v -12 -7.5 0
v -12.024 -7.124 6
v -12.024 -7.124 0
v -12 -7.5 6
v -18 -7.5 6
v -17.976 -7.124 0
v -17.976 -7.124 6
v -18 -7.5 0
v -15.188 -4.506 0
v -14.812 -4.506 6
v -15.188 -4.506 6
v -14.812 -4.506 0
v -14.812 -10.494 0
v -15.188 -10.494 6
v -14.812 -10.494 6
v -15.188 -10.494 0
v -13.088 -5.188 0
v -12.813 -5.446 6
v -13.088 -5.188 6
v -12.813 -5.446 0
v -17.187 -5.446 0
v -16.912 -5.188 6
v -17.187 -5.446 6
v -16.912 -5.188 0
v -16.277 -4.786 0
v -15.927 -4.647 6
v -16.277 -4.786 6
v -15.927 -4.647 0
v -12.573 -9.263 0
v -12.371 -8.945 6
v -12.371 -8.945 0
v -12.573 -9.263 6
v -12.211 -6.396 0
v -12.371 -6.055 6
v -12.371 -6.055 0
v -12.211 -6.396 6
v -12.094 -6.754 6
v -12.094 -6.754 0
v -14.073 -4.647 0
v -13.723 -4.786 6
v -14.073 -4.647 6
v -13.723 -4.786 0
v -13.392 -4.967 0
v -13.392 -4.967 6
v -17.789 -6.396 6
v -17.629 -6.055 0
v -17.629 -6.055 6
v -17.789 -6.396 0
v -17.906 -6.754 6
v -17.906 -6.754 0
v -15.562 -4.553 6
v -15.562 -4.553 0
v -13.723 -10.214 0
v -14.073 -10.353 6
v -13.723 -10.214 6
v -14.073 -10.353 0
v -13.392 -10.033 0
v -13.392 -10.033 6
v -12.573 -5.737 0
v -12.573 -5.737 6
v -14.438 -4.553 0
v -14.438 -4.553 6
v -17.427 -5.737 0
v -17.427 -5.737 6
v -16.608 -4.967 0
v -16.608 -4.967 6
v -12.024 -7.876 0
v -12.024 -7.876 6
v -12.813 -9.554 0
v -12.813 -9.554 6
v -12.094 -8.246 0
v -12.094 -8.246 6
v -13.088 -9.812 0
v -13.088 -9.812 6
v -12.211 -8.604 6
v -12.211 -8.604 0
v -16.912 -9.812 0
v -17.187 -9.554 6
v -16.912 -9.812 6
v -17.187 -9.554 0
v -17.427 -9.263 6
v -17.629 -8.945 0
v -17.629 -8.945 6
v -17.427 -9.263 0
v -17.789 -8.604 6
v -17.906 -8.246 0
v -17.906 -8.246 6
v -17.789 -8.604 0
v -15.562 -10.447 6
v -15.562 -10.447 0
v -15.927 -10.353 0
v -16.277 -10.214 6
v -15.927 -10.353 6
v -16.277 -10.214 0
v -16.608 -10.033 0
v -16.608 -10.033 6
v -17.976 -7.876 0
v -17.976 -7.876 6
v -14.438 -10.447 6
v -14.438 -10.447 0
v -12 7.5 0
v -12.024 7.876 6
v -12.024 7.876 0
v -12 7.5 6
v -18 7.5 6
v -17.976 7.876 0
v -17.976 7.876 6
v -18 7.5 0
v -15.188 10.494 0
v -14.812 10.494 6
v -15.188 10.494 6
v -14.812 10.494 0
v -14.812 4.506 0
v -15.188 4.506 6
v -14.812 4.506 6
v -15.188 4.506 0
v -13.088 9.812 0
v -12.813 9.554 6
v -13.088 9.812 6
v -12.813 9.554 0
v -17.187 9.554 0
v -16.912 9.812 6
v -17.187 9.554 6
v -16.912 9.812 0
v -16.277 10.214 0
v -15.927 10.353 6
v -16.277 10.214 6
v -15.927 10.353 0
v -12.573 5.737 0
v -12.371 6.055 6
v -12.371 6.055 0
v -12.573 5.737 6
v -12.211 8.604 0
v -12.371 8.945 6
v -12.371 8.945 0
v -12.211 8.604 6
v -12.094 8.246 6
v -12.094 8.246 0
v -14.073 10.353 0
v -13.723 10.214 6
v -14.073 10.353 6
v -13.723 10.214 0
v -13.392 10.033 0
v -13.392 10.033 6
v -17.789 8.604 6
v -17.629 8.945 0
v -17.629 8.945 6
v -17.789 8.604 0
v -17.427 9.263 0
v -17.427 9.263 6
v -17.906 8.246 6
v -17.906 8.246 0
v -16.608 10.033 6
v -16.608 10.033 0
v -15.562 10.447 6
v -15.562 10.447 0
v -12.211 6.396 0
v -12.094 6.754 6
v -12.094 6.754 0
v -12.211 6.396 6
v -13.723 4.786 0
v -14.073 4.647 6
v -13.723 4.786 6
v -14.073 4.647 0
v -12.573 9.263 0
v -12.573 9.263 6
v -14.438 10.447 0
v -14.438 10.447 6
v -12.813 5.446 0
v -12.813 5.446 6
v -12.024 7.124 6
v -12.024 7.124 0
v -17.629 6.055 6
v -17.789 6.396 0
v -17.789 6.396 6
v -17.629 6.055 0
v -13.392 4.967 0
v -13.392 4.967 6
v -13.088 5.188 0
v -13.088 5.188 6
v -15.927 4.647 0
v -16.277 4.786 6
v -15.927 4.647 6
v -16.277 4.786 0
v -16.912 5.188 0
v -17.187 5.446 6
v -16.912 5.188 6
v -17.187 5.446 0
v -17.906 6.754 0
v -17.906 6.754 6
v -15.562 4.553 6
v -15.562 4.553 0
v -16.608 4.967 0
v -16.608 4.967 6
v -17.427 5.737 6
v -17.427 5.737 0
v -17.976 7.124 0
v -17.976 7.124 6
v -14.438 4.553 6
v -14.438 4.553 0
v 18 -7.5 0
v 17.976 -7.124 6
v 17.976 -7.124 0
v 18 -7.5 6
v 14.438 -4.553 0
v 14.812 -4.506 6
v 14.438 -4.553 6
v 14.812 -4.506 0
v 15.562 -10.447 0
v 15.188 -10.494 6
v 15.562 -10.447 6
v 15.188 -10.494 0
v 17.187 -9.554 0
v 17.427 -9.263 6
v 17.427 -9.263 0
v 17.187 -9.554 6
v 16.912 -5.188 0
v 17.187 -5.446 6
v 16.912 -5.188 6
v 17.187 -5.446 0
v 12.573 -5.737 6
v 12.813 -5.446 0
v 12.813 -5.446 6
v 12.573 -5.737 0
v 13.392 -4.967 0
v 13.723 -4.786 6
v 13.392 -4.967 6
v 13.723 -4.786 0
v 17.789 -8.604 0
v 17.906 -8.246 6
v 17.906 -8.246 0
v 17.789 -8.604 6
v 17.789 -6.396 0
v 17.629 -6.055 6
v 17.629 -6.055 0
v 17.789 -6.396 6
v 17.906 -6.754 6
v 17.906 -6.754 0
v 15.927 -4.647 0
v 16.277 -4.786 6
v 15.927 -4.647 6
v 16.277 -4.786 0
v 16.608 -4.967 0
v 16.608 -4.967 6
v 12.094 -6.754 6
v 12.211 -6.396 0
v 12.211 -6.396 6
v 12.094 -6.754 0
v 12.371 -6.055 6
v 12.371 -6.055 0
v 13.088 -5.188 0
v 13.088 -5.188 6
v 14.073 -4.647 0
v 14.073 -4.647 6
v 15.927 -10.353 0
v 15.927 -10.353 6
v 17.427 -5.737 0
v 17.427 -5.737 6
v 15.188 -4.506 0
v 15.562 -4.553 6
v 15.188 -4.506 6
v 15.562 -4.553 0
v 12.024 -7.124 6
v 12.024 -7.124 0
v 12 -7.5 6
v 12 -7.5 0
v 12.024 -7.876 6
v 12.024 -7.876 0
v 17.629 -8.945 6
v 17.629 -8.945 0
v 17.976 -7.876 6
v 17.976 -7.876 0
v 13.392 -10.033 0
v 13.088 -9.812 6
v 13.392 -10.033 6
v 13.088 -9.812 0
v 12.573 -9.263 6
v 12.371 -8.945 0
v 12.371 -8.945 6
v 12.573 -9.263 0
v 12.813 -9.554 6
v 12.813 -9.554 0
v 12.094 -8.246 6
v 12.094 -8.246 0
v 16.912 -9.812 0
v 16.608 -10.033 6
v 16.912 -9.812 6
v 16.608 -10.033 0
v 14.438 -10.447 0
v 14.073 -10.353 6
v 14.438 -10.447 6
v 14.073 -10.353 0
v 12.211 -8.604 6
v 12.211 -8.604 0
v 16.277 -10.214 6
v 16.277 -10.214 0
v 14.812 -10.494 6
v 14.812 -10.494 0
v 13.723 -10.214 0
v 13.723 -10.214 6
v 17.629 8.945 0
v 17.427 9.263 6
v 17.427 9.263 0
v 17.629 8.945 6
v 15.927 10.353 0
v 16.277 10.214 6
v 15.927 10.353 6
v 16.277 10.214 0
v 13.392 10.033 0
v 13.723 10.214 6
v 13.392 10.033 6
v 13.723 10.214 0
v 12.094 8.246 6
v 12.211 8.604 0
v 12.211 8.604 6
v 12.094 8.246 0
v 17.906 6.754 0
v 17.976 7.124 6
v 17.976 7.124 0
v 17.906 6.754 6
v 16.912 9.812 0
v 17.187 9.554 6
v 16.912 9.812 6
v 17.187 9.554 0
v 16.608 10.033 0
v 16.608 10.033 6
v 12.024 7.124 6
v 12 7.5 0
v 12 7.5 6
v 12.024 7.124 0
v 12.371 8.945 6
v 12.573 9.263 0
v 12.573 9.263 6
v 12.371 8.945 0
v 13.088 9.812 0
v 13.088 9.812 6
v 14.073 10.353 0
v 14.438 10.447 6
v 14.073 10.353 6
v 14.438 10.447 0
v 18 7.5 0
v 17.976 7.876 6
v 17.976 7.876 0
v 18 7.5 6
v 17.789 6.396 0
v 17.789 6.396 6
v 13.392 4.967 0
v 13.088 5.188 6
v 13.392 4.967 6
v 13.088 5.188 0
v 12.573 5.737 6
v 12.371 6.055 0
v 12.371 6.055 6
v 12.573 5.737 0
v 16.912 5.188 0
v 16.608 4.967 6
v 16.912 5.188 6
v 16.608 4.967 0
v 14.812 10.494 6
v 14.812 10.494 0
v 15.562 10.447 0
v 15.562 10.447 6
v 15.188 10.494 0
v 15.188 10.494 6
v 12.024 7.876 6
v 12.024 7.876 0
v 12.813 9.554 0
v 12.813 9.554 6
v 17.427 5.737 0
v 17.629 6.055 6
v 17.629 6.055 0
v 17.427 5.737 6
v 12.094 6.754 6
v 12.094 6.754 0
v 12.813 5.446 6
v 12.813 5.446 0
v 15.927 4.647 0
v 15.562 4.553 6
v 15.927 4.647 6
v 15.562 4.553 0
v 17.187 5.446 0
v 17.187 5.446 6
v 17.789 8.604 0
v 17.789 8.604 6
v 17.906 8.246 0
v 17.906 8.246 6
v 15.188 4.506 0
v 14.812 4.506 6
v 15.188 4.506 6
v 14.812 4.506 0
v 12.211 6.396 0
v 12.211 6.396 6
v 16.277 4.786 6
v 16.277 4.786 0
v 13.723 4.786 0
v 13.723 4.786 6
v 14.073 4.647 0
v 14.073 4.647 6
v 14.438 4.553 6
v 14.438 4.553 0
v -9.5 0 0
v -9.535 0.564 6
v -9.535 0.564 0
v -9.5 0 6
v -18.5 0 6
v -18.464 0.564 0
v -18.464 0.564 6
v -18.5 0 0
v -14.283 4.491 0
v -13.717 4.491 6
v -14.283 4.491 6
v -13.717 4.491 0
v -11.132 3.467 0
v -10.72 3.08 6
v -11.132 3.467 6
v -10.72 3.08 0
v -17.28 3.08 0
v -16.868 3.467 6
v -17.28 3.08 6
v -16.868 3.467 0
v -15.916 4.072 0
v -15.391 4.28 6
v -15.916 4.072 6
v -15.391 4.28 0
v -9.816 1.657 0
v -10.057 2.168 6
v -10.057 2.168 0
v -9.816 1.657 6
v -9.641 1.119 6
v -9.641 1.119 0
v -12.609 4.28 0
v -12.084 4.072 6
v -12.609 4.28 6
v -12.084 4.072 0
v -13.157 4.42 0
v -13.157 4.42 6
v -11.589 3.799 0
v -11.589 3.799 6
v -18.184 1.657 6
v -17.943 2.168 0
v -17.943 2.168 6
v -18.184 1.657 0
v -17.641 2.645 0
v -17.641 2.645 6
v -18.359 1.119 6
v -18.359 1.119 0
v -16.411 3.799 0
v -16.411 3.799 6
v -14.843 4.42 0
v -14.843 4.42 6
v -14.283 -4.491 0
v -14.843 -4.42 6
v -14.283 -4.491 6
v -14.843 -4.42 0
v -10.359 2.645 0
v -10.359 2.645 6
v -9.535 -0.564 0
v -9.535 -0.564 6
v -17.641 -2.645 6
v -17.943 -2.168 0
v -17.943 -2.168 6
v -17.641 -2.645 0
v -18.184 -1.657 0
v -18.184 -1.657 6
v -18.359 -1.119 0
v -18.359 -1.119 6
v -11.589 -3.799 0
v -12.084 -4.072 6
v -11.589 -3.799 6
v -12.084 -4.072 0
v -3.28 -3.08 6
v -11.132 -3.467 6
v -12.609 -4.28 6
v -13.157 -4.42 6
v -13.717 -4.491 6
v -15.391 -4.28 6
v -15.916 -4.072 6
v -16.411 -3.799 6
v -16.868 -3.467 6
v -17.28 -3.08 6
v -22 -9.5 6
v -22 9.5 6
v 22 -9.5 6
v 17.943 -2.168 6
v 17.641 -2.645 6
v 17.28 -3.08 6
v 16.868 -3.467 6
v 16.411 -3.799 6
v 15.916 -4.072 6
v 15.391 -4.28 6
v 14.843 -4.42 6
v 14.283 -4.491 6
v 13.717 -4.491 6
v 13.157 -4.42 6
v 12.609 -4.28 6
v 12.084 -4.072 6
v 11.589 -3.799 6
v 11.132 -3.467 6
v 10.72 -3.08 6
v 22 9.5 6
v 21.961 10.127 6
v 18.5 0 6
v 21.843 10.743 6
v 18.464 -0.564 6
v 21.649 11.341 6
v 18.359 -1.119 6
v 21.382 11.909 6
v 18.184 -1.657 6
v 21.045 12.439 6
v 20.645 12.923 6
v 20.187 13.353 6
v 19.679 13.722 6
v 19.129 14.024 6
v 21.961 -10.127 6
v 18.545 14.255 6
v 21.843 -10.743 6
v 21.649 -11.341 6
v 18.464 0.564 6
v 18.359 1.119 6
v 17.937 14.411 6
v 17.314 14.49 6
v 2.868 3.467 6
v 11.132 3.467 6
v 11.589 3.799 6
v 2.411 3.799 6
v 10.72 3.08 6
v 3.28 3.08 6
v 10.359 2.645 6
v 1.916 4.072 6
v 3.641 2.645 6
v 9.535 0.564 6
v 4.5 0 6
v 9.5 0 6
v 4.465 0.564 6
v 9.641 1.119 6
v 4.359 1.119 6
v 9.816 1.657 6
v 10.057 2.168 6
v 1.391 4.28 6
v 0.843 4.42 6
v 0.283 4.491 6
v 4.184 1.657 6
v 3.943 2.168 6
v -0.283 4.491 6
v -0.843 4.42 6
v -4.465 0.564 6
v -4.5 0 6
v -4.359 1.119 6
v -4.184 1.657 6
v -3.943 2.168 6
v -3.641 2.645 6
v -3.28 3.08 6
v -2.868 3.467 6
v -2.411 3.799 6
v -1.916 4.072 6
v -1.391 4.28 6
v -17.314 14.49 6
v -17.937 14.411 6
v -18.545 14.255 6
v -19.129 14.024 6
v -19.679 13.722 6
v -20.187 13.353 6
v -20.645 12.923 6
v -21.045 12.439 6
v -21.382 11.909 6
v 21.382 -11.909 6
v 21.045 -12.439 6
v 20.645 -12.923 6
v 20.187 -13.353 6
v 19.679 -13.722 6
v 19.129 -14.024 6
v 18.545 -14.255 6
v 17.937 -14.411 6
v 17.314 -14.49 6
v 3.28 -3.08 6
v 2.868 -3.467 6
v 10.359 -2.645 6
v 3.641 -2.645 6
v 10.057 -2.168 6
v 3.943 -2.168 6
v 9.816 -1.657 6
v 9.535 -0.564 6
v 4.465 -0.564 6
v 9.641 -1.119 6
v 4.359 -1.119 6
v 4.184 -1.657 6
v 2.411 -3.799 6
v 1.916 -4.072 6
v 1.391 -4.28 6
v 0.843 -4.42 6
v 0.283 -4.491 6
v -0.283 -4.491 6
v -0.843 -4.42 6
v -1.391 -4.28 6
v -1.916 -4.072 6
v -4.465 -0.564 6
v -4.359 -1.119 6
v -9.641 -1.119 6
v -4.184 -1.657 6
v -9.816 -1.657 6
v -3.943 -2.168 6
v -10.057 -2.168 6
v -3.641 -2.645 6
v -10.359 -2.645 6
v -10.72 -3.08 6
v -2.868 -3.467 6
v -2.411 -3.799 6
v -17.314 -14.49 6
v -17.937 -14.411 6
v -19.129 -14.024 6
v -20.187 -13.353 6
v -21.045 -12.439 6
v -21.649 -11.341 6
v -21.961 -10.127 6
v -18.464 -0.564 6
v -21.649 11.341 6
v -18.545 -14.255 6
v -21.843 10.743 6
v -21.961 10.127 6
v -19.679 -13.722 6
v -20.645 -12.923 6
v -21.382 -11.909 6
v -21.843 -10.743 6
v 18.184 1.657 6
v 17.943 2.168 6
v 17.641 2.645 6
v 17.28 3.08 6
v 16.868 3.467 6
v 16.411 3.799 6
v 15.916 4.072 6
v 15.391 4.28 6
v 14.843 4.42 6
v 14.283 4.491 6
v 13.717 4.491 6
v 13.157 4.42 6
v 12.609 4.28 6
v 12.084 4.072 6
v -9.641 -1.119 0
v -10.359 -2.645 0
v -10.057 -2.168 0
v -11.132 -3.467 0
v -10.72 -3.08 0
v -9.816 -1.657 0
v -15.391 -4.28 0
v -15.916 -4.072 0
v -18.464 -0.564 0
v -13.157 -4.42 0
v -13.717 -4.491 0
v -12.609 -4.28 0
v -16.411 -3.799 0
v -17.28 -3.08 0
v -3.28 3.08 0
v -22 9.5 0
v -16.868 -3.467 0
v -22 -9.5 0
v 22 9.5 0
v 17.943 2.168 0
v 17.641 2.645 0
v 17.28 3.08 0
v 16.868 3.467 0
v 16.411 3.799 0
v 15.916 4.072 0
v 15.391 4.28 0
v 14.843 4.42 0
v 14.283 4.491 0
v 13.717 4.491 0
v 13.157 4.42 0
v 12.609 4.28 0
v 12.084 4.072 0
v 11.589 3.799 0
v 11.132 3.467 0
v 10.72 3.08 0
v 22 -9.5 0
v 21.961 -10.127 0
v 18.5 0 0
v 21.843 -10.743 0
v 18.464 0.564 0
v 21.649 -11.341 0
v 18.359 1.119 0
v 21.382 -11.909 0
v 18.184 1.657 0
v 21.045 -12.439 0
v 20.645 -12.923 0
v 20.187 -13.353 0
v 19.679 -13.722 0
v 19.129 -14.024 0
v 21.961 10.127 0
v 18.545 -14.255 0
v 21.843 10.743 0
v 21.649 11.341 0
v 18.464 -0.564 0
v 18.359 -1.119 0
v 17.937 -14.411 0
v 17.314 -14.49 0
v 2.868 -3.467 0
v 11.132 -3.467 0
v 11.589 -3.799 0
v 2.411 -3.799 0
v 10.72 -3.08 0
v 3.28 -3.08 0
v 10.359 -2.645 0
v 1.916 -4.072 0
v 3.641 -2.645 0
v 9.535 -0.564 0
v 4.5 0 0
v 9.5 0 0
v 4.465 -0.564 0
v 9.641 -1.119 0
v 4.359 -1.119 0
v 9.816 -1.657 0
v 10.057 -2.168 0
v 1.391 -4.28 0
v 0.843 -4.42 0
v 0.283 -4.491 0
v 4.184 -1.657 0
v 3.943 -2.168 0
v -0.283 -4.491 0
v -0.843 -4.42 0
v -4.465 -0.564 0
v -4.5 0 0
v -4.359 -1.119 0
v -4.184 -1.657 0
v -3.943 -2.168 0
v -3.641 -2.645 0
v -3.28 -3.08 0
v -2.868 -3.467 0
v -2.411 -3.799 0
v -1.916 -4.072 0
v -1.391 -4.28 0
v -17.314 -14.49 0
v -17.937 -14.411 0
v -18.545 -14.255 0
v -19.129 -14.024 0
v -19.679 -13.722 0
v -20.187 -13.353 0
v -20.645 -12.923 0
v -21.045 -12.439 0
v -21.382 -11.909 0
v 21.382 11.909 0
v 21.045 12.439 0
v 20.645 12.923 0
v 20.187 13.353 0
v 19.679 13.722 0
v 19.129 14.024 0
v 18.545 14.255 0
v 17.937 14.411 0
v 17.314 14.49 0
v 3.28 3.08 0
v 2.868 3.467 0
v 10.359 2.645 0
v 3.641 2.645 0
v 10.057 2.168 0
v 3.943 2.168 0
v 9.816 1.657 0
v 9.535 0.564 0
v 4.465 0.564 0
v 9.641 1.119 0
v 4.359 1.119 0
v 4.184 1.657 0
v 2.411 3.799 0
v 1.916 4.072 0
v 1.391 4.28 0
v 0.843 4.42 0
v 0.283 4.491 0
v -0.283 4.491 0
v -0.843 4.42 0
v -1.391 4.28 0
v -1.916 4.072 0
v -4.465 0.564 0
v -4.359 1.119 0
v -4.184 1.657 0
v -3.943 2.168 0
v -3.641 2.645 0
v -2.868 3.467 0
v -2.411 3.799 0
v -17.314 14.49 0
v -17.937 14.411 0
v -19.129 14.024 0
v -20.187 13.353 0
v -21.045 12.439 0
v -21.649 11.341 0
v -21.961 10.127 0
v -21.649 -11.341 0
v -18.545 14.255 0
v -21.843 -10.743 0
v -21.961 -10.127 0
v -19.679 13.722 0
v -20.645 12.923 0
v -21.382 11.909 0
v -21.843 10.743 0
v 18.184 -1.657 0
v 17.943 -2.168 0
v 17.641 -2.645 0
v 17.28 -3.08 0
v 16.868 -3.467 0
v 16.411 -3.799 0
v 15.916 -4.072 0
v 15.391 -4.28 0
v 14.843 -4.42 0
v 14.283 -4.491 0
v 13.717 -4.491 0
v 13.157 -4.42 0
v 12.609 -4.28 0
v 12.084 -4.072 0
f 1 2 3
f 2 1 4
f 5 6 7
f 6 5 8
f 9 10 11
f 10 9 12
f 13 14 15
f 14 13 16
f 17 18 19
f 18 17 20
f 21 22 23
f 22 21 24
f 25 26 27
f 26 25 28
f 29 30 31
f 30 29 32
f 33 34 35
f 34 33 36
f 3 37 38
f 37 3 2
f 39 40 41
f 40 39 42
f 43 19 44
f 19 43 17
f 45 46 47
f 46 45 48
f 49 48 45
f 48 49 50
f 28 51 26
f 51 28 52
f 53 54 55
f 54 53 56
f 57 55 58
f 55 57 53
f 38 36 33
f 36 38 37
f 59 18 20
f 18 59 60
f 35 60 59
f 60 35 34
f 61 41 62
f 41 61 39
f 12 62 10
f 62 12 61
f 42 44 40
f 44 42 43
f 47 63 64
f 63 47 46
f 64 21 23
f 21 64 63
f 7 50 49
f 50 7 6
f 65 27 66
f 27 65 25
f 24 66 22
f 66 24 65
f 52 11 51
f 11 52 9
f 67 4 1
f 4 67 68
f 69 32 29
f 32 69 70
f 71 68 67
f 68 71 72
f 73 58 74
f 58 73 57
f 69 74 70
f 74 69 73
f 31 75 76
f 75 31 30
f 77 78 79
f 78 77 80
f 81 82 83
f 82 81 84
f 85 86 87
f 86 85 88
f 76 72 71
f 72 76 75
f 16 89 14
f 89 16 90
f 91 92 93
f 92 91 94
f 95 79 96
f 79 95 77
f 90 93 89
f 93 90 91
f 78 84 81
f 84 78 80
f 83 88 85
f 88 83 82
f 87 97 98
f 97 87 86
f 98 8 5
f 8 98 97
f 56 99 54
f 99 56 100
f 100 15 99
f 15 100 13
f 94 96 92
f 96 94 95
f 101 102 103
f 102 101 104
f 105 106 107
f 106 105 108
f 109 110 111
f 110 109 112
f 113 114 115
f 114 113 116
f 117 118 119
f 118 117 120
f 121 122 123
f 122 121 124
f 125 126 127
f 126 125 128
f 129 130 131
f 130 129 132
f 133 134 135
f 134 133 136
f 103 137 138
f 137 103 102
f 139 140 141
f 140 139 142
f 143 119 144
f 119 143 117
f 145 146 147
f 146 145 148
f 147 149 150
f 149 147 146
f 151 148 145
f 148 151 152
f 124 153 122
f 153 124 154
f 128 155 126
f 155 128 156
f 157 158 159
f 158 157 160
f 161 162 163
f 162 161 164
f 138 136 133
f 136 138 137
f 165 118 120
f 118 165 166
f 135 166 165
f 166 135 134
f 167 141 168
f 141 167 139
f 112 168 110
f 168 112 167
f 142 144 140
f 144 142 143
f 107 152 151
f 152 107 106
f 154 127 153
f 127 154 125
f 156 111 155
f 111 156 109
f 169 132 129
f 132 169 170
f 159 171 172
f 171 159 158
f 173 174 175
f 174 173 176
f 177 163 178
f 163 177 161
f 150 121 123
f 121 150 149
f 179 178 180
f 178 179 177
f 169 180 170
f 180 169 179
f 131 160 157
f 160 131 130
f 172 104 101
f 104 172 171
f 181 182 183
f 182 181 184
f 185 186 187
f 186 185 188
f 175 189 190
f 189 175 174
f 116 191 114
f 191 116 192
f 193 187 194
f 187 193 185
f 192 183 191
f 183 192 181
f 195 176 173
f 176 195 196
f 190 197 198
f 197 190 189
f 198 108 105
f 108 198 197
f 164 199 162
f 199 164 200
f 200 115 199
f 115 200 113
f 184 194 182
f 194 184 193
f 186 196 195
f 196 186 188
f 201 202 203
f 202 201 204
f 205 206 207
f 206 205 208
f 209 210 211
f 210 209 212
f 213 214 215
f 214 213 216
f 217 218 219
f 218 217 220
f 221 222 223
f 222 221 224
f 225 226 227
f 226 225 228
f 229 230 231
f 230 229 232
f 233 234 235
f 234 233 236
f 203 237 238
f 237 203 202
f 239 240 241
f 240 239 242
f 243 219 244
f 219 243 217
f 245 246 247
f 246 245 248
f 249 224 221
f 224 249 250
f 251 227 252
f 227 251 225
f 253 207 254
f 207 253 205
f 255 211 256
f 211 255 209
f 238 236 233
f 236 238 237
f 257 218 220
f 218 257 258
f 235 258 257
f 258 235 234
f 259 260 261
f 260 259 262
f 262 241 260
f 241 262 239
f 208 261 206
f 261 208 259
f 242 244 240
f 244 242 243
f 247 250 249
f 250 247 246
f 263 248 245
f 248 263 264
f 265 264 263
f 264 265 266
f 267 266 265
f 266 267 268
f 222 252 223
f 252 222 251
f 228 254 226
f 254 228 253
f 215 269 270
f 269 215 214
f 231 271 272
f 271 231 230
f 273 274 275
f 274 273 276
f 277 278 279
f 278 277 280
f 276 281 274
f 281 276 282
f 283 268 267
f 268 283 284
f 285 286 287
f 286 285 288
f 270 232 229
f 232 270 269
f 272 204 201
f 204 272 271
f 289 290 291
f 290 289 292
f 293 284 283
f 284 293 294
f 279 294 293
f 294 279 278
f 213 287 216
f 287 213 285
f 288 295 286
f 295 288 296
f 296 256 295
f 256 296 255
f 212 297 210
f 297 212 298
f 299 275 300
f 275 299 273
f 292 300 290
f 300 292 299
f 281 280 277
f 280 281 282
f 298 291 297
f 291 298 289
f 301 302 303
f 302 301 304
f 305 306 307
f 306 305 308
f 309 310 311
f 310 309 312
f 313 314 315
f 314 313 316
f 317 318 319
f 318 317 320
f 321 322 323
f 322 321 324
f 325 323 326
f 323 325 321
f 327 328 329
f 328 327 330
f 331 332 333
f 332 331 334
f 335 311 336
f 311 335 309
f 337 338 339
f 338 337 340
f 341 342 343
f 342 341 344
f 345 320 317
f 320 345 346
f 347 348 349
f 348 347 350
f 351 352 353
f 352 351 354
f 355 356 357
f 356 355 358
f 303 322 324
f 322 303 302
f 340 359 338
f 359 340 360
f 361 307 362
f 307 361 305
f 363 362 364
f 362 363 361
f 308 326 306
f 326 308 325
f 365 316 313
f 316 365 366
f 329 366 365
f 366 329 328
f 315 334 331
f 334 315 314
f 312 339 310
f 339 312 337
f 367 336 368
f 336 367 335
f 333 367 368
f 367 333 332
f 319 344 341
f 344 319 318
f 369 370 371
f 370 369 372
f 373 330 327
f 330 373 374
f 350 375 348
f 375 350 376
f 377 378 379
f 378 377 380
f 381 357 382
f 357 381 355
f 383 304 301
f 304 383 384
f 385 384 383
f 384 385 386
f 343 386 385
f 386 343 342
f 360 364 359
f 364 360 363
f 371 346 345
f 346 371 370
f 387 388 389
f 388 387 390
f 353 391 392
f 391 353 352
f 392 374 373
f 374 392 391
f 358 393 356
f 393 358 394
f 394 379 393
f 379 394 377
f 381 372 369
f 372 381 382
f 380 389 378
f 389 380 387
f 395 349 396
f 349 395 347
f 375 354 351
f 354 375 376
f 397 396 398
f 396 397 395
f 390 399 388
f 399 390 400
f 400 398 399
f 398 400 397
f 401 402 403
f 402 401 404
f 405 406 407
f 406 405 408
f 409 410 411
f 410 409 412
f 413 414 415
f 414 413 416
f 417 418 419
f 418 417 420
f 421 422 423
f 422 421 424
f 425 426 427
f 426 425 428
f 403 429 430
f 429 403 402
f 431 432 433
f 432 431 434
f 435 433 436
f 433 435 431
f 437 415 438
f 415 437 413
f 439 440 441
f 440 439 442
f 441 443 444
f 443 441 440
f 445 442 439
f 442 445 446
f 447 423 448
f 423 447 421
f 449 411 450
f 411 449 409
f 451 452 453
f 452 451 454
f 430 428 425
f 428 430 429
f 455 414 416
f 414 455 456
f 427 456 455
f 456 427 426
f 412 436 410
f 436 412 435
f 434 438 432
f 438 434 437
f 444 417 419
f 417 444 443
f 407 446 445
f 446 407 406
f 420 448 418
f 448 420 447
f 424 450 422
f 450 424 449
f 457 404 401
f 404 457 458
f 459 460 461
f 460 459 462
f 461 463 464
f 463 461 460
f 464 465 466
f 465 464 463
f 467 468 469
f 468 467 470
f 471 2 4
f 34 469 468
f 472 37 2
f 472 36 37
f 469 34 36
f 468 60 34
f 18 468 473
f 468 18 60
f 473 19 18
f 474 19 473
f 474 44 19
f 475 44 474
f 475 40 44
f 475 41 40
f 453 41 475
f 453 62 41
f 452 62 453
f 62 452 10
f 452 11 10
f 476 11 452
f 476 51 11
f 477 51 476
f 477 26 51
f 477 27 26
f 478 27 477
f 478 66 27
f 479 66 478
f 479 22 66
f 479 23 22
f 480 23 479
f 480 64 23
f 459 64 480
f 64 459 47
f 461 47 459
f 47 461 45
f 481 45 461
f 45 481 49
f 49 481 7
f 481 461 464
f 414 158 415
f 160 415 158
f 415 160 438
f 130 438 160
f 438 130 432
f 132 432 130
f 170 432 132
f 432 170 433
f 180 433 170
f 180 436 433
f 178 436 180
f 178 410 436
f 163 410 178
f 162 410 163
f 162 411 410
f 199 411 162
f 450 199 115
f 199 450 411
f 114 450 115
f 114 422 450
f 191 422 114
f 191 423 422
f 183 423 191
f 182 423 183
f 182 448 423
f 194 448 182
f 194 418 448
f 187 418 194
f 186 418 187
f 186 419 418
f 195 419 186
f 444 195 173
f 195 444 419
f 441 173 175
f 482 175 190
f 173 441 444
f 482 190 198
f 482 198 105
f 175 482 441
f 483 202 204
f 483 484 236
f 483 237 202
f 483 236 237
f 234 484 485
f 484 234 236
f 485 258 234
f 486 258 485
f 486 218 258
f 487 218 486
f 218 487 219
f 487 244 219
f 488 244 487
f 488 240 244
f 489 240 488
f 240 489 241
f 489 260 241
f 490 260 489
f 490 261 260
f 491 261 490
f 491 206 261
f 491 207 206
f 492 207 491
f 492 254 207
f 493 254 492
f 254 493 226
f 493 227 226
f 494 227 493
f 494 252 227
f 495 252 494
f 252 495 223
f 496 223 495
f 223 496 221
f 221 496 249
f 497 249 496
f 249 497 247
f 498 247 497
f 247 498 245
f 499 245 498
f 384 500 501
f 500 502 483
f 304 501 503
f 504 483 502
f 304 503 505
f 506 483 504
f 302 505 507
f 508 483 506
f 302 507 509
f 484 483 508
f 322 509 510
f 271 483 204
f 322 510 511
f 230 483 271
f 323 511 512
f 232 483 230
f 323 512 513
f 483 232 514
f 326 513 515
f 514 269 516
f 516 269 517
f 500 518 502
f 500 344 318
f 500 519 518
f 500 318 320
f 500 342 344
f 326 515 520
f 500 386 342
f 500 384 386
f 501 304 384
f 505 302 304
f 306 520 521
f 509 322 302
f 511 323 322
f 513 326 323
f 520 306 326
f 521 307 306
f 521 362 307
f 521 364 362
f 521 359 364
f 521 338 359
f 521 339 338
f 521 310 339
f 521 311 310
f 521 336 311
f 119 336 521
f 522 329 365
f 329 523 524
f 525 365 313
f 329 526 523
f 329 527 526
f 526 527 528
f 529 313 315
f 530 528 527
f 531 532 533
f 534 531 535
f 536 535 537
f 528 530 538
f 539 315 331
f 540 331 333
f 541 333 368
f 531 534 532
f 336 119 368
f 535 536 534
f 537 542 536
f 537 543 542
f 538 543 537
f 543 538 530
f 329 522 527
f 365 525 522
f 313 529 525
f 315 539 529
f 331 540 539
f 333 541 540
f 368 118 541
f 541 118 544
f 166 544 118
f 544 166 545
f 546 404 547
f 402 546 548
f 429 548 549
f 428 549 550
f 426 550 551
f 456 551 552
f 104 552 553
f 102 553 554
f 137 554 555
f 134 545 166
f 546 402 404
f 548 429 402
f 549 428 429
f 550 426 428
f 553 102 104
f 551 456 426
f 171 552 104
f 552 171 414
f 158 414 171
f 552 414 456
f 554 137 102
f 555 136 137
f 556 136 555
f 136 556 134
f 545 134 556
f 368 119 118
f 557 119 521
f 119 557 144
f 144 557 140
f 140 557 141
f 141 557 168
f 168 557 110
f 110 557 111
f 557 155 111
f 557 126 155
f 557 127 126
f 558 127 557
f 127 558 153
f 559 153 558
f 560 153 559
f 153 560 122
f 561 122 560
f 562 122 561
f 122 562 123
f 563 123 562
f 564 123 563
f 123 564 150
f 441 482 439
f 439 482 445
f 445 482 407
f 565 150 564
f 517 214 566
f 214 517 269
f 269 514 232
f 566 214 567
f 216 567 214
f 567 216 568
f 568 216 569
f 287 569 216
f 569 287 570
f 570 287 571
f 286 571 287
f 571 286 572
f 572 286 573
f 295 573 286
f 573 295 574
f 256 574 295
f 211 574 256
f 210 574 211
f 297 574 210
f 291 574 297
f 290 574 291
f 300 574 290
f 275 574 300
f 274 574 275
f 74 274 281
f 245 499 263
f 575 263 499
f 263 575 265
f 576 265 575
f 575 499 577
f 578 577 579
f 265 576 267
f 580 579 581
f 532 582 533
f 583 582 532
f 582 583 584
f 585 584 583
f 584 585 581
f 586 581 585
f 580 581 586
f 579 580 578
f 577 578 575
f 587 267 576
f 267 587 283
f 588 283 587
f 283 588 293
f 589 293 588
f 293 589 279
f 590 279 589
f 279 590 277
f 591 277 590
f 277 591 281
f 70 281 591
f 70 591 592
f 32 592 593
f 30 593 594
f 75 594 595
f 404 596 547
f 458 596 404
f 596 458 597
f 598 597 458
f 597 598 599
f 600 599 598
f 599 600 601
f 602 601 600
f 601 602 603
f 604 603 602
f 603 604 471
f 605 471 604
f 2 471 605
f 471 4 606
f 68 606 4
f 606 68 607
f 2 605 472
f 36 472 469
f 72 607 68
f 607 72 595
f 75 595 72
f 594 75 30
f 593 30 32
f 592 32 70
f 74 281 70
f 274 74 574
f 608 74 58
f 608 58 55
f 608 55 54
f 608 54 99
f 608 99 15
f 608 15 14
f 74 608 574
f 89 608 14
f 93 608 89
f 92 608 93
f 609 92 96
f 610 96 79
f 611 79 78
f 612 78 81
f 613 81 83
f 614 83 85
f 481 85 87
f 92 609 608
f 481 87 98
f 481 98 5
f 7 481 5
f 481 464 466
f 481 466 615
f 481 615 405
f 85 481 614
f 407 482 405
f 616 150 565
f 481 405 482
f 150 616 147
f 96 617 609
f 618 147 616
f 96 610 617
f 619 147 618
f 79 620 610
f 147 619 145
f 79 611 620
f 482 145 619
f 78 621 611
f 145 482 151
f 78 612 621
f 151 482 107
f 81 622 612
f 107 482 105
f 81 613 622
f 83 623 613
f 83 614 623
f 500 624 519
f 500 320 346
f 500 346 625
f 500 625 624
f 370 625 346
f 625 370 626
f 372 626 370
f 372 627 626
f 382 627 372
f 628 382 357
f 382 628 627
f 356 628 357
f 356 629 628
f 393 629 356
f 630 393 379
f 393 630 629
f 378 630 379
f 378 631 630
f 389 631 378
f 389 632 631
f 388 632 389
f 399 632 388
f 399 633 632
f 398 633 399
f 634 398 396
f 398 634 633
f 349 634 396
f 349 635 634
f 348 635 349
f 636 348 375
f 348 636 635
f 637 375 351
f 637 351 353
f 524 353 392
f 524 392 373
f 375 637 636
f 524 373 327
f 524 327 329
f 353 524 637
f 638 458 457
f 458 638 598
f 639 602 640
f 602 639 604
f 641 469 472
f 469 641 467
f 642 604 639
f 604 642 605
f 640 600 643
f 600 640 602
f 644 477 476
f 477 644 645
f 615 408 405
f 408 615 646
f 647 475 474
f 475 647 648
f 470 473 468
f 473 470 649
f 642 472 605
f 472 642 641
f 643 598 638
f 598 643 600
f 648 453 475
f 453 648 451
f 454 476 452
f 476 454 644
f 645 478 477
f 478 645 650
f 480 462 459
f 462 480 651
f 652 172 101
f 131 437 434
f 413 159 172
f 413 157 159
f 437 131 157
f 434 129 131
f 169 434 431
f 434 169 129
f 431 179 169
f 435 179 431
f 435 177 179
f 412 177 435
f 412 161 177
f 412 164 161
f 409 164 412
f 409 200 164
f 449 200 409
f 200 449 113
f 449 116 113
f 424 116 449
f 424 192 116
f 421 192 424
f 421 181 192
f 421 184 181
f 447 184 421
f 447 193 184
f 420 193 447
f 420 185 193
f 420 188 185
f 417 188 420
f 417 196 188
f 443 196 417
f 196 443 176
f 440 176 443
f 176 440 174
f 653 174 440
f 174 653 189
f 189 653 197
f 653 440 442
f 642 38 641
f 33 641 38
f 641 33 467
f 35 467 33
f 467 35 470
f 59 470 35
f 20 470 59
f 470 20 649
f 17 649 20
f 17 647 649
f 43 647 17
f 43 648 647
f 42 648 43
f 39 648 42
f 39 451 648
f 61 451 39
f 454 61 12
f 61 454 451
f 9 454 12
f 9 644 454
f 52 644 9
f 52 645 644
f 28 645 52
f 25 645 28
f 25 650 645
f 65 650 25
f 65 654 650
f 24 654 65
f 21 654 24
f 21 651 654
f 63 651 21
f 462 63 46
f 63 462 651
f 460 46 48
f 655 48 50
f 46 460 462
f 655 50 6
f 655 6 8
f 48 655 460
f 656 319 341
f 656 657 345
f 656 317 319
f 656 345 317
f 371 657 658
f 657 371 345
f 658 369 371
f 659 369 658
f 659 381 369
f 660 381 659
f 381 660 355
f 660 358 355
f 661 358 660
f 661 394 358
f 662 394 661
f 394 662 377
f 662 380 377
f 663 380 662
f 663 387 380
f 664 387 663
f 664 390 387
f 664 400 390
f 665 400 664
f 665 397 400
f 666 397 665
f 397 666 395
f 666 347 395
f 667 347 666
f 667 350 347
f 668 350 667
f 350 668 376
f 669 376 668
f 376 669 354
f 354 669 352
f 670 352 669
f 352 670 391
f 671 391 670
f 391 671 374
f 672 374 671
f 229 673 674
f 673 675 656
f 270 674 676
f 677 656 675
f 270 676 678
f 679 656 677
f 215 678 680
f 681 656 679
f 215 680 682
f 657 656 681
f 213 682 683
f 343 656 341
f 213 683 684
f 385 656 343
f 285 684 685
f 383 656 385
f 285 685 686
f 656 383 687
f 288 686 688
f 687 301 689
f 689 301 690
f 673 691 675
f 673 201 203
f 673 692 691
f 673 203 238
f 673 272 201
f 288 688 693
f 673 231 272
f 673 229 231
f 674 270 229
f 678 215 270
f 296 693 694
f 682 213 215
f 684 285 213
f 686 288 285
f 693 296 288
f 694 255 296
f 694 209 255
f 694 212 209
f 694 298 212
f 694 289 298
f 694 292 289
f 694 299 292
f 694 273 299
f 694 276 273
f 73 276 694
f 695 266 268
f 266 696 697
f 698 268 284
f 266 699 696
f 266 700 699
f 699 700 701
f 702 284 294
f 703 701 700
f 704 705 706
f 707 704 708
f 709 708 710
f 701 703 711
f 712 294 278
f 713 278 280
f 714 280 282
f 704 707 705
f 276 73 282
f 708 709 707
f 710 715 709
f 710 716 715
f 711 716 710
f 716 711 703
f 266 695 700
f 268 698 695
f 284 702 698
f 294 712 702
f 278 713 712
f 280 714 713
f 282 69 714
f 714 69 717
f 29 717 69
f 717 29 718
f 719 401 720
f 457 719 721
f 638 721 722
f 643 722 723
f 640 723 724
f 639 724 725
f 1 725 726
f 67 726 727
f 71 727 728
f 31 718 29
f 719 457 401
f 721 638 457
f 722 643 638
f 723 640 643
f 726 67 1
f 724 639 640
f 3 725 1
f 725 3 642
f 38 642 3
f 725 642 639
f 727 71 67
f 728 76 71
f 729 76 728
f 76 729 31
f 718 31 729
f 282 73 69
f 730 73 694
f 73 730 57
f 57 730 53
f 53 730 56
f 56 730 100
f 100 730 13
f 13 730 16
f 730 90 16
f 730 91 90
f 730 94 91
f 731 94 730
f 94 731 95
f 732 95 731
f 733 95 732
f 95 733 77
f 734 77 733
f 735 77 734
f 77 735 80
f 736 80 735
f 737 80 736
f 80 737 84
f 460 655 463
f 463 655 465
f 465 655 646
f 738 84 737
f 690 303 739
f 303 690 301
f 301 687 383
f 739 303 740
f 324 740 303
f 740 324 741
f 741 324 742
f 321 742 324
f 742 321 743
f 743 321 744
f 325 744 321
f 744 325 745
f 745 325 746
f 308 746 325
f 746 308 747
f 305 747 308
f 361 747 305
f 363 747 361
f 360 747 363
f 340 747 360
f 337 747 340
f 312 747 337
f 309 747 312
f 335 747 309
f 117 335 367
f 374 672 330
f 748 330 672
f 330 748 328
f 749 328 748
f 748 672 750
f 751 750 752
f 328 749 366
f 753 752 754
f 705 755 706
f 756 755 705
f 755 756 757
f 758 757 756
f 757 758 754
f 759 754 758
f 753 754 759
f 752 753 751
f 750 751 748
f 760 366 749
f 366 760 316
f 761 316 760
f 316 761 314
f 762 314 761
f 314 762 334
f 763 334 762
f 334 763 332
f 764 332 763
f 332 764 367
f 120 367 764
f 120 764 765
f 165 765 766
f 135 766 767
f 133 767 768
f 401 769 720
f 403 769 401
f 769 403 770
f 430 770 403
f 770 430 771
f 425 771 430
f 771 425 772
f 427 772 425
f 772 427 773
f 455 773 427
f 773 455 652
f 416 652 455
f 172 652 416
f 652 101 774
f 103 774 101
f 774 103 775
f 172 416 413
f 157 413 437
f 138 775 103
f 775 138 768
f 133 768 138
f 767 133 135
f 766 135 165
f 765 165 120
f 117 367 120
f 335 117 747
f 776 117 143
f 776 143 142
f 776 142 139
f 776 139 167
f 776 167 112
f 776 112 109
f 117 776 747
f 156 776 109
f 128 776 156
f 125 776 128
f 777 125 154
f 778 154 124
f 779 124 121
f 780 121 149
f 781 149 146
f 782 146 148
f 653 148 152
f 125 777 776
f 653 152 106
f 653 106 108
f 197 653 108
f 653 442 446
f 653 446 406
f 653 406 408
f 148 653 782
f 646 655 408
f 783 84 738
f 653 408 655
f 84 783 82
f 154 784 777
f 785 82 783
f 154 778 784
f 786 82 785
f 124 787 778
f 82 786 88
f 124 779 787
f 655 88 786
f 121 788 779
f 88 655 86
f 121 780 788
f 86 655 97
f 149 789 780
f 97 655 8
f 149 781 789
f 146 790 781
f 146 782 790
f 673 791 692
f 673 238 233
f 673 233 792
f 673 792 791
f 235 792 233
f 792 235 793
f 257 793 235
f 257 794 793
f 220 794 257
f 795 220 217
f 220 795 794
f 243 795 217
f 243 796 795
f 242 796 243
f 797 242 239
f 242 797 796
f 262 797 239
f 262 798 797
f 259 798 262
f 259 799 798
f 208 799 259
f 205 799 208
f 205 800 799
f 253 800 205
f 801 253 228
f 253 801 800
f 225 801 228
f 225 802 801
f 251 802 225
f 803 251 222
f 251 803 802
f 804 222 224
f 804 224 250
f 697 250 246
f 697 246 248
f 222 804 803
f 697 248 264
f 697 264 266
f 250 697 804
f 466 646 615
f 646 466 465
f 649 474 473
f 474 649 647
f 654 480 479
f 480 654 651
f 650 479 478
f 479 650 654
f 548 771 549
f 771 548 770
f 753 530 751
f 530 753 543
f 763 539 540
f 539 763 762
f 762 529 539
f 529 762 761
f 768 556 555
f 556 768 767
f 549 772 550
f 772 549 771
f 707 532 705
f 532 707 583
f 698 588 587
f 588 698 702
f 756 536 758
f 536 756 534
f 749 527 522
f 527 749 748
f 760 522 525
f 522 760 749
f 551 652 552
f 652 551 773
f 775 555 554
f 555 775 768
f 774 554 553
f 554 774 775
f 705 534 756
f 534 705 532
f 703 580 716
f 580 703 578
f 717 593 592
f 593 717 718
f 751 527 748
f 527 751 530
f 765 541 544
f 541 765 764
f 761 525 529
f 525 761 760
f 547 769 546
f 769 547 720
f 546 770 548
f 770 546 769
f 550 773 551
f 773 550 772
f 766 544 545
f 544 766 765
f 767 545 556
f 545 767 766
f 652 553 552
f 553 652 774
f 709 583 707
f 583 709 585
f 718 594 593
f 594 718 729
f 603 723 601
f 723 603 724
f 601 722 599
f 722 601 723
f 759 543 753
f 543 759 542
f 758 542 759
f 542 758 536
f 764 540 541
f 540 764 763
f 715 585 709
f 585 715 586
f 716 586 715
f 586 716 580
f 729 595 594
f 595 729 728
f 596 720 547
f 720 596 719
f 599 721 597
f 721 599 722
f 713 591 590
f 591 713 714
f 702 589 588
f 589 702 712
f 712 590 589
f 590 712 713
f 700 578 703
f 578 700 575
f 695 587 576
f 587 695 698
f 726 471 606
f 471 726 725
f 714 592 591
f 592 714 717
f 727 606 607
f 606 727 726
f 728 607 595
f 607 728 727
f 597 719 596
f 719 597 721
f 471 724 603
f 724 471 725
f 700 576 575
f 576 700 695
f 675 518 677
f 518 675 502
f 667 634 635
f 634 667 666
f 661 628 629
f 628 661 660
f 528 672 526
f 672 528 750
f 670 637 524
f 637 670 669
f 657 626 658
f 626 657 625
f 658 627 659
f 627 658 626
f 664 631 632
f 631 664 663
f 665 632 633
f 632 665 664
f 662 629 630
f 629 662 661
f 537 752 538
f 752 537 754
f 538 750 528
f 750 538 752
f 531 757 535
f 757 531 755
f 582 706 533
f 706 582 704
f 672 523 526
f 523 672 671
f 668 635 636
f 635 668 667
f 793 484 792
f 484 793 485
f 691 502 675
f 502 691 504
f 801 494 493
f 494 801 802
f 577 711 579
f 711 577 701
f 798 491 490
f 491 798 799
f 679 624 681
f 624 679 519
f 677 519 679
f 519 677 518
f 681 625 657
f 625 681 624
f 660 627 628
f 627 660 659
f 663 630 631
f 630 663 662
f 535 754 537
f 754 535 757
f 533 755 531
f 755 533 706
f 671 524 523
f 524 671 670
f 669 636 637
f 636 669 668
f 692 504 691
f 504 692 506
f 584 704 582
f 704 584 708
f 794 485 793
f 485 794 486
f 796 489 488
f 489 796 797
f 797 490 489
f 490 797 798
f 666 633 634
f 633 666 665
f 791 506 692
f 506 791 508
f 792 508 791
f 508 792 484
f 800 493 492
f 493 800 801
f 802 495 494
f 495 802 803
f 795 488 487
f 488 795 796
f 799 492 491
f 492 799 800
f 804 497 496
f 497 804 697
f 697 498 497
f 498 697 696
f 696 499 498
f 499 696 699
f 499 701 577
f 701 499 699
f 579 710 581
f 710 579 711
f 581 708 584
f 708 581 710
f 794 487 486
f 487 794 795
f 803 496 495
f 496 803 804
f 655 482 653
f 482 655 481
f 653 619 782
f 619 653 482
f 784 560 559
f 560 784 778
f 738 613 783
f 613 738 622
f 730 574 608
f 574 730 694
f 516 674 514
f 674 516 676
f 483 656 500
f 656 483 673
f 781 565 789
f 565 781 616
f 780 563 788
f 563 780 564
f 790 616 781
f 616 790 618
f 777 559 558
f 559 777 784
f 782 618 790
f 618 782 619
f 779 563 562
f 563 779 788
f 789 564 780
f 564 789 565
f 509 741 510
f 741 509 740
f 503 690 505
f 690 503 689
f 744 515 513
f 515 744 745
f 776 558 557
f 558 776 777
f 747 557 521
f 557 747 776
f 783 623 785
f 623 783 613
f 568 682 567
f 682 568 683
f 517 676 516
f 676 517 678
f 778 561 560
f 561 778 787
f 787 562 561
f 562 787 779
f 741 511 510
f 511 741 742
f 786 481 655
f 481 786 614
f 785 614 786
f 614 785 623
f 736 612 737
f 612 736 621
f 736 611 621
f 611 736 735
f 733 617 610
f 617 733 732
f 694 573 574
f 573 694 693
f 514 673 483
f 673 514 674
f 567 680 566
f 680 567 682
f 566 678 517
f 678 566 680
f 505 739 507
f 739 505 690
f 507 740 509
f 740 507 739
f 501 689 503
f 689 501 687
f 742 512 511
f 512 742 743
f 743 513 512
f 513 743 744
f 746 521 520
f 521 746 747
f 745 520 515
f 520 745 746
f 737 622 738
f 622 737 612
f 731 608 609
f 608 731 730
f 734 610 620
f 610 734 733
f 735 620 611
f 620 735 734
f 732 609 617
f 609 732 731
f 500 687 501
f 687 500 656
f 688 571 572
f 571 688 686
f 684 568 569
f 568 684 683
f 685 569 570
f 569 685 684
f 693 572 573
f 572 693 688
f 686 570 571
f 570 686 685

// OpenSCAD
$fn = 50;


difference() {
	union() {
		hull() {
			translate(v = [-17.0000000000, 9.5000000000, 0]) {
				cylinder(h = 6, r = 5);
			}
			translate(v = [17.0000000000, 9.5000000000, 0]) {
				cylinder(h = 6, r = 5);
			}
			translate(v = [-17.0000000000, -9.5000000000, 0]) {
				cylinder(h = 6, r = 5);
			}
			translate(v = [17.0000000000, -9.5000000000, 0]) {
				cylinder(h = 6, r = 5);
			}
		}
	}
	union() {
		#translate(v = [-15.0000000000, -7.5000000000, -100.0000000000]) {
			cylinder(h = 200, r = 3.0000000000);
		}
		#translate(v = [-15.0000000000, 7.5000000000, -100.0000000000]) {
			cylinder(h = 200, r = 3.0000000000);
		}
		#translate(v = [15.0000000000, -7.5000000000, -100.0000000000]) {
			cylinder(h = 200, r = 3.0000000000);
		}
		#translate(v = [15.0000000000, 7.5000000000, -100.0000000000]) {
			cylinder(h = 200, r = 3.0000000000);
		}
		#translate(v = [-14.0000000000, 0, 0]) {
			cylinder(h = 6, r = 4.5000000000);
		}
		#cylinder(h = 6, r = 4.5000000000);
		#translate(v = [14.0000000000, 0, 0]) {
			cylinder(h = 6, r = 4.5000000000);
		}
	}
}
